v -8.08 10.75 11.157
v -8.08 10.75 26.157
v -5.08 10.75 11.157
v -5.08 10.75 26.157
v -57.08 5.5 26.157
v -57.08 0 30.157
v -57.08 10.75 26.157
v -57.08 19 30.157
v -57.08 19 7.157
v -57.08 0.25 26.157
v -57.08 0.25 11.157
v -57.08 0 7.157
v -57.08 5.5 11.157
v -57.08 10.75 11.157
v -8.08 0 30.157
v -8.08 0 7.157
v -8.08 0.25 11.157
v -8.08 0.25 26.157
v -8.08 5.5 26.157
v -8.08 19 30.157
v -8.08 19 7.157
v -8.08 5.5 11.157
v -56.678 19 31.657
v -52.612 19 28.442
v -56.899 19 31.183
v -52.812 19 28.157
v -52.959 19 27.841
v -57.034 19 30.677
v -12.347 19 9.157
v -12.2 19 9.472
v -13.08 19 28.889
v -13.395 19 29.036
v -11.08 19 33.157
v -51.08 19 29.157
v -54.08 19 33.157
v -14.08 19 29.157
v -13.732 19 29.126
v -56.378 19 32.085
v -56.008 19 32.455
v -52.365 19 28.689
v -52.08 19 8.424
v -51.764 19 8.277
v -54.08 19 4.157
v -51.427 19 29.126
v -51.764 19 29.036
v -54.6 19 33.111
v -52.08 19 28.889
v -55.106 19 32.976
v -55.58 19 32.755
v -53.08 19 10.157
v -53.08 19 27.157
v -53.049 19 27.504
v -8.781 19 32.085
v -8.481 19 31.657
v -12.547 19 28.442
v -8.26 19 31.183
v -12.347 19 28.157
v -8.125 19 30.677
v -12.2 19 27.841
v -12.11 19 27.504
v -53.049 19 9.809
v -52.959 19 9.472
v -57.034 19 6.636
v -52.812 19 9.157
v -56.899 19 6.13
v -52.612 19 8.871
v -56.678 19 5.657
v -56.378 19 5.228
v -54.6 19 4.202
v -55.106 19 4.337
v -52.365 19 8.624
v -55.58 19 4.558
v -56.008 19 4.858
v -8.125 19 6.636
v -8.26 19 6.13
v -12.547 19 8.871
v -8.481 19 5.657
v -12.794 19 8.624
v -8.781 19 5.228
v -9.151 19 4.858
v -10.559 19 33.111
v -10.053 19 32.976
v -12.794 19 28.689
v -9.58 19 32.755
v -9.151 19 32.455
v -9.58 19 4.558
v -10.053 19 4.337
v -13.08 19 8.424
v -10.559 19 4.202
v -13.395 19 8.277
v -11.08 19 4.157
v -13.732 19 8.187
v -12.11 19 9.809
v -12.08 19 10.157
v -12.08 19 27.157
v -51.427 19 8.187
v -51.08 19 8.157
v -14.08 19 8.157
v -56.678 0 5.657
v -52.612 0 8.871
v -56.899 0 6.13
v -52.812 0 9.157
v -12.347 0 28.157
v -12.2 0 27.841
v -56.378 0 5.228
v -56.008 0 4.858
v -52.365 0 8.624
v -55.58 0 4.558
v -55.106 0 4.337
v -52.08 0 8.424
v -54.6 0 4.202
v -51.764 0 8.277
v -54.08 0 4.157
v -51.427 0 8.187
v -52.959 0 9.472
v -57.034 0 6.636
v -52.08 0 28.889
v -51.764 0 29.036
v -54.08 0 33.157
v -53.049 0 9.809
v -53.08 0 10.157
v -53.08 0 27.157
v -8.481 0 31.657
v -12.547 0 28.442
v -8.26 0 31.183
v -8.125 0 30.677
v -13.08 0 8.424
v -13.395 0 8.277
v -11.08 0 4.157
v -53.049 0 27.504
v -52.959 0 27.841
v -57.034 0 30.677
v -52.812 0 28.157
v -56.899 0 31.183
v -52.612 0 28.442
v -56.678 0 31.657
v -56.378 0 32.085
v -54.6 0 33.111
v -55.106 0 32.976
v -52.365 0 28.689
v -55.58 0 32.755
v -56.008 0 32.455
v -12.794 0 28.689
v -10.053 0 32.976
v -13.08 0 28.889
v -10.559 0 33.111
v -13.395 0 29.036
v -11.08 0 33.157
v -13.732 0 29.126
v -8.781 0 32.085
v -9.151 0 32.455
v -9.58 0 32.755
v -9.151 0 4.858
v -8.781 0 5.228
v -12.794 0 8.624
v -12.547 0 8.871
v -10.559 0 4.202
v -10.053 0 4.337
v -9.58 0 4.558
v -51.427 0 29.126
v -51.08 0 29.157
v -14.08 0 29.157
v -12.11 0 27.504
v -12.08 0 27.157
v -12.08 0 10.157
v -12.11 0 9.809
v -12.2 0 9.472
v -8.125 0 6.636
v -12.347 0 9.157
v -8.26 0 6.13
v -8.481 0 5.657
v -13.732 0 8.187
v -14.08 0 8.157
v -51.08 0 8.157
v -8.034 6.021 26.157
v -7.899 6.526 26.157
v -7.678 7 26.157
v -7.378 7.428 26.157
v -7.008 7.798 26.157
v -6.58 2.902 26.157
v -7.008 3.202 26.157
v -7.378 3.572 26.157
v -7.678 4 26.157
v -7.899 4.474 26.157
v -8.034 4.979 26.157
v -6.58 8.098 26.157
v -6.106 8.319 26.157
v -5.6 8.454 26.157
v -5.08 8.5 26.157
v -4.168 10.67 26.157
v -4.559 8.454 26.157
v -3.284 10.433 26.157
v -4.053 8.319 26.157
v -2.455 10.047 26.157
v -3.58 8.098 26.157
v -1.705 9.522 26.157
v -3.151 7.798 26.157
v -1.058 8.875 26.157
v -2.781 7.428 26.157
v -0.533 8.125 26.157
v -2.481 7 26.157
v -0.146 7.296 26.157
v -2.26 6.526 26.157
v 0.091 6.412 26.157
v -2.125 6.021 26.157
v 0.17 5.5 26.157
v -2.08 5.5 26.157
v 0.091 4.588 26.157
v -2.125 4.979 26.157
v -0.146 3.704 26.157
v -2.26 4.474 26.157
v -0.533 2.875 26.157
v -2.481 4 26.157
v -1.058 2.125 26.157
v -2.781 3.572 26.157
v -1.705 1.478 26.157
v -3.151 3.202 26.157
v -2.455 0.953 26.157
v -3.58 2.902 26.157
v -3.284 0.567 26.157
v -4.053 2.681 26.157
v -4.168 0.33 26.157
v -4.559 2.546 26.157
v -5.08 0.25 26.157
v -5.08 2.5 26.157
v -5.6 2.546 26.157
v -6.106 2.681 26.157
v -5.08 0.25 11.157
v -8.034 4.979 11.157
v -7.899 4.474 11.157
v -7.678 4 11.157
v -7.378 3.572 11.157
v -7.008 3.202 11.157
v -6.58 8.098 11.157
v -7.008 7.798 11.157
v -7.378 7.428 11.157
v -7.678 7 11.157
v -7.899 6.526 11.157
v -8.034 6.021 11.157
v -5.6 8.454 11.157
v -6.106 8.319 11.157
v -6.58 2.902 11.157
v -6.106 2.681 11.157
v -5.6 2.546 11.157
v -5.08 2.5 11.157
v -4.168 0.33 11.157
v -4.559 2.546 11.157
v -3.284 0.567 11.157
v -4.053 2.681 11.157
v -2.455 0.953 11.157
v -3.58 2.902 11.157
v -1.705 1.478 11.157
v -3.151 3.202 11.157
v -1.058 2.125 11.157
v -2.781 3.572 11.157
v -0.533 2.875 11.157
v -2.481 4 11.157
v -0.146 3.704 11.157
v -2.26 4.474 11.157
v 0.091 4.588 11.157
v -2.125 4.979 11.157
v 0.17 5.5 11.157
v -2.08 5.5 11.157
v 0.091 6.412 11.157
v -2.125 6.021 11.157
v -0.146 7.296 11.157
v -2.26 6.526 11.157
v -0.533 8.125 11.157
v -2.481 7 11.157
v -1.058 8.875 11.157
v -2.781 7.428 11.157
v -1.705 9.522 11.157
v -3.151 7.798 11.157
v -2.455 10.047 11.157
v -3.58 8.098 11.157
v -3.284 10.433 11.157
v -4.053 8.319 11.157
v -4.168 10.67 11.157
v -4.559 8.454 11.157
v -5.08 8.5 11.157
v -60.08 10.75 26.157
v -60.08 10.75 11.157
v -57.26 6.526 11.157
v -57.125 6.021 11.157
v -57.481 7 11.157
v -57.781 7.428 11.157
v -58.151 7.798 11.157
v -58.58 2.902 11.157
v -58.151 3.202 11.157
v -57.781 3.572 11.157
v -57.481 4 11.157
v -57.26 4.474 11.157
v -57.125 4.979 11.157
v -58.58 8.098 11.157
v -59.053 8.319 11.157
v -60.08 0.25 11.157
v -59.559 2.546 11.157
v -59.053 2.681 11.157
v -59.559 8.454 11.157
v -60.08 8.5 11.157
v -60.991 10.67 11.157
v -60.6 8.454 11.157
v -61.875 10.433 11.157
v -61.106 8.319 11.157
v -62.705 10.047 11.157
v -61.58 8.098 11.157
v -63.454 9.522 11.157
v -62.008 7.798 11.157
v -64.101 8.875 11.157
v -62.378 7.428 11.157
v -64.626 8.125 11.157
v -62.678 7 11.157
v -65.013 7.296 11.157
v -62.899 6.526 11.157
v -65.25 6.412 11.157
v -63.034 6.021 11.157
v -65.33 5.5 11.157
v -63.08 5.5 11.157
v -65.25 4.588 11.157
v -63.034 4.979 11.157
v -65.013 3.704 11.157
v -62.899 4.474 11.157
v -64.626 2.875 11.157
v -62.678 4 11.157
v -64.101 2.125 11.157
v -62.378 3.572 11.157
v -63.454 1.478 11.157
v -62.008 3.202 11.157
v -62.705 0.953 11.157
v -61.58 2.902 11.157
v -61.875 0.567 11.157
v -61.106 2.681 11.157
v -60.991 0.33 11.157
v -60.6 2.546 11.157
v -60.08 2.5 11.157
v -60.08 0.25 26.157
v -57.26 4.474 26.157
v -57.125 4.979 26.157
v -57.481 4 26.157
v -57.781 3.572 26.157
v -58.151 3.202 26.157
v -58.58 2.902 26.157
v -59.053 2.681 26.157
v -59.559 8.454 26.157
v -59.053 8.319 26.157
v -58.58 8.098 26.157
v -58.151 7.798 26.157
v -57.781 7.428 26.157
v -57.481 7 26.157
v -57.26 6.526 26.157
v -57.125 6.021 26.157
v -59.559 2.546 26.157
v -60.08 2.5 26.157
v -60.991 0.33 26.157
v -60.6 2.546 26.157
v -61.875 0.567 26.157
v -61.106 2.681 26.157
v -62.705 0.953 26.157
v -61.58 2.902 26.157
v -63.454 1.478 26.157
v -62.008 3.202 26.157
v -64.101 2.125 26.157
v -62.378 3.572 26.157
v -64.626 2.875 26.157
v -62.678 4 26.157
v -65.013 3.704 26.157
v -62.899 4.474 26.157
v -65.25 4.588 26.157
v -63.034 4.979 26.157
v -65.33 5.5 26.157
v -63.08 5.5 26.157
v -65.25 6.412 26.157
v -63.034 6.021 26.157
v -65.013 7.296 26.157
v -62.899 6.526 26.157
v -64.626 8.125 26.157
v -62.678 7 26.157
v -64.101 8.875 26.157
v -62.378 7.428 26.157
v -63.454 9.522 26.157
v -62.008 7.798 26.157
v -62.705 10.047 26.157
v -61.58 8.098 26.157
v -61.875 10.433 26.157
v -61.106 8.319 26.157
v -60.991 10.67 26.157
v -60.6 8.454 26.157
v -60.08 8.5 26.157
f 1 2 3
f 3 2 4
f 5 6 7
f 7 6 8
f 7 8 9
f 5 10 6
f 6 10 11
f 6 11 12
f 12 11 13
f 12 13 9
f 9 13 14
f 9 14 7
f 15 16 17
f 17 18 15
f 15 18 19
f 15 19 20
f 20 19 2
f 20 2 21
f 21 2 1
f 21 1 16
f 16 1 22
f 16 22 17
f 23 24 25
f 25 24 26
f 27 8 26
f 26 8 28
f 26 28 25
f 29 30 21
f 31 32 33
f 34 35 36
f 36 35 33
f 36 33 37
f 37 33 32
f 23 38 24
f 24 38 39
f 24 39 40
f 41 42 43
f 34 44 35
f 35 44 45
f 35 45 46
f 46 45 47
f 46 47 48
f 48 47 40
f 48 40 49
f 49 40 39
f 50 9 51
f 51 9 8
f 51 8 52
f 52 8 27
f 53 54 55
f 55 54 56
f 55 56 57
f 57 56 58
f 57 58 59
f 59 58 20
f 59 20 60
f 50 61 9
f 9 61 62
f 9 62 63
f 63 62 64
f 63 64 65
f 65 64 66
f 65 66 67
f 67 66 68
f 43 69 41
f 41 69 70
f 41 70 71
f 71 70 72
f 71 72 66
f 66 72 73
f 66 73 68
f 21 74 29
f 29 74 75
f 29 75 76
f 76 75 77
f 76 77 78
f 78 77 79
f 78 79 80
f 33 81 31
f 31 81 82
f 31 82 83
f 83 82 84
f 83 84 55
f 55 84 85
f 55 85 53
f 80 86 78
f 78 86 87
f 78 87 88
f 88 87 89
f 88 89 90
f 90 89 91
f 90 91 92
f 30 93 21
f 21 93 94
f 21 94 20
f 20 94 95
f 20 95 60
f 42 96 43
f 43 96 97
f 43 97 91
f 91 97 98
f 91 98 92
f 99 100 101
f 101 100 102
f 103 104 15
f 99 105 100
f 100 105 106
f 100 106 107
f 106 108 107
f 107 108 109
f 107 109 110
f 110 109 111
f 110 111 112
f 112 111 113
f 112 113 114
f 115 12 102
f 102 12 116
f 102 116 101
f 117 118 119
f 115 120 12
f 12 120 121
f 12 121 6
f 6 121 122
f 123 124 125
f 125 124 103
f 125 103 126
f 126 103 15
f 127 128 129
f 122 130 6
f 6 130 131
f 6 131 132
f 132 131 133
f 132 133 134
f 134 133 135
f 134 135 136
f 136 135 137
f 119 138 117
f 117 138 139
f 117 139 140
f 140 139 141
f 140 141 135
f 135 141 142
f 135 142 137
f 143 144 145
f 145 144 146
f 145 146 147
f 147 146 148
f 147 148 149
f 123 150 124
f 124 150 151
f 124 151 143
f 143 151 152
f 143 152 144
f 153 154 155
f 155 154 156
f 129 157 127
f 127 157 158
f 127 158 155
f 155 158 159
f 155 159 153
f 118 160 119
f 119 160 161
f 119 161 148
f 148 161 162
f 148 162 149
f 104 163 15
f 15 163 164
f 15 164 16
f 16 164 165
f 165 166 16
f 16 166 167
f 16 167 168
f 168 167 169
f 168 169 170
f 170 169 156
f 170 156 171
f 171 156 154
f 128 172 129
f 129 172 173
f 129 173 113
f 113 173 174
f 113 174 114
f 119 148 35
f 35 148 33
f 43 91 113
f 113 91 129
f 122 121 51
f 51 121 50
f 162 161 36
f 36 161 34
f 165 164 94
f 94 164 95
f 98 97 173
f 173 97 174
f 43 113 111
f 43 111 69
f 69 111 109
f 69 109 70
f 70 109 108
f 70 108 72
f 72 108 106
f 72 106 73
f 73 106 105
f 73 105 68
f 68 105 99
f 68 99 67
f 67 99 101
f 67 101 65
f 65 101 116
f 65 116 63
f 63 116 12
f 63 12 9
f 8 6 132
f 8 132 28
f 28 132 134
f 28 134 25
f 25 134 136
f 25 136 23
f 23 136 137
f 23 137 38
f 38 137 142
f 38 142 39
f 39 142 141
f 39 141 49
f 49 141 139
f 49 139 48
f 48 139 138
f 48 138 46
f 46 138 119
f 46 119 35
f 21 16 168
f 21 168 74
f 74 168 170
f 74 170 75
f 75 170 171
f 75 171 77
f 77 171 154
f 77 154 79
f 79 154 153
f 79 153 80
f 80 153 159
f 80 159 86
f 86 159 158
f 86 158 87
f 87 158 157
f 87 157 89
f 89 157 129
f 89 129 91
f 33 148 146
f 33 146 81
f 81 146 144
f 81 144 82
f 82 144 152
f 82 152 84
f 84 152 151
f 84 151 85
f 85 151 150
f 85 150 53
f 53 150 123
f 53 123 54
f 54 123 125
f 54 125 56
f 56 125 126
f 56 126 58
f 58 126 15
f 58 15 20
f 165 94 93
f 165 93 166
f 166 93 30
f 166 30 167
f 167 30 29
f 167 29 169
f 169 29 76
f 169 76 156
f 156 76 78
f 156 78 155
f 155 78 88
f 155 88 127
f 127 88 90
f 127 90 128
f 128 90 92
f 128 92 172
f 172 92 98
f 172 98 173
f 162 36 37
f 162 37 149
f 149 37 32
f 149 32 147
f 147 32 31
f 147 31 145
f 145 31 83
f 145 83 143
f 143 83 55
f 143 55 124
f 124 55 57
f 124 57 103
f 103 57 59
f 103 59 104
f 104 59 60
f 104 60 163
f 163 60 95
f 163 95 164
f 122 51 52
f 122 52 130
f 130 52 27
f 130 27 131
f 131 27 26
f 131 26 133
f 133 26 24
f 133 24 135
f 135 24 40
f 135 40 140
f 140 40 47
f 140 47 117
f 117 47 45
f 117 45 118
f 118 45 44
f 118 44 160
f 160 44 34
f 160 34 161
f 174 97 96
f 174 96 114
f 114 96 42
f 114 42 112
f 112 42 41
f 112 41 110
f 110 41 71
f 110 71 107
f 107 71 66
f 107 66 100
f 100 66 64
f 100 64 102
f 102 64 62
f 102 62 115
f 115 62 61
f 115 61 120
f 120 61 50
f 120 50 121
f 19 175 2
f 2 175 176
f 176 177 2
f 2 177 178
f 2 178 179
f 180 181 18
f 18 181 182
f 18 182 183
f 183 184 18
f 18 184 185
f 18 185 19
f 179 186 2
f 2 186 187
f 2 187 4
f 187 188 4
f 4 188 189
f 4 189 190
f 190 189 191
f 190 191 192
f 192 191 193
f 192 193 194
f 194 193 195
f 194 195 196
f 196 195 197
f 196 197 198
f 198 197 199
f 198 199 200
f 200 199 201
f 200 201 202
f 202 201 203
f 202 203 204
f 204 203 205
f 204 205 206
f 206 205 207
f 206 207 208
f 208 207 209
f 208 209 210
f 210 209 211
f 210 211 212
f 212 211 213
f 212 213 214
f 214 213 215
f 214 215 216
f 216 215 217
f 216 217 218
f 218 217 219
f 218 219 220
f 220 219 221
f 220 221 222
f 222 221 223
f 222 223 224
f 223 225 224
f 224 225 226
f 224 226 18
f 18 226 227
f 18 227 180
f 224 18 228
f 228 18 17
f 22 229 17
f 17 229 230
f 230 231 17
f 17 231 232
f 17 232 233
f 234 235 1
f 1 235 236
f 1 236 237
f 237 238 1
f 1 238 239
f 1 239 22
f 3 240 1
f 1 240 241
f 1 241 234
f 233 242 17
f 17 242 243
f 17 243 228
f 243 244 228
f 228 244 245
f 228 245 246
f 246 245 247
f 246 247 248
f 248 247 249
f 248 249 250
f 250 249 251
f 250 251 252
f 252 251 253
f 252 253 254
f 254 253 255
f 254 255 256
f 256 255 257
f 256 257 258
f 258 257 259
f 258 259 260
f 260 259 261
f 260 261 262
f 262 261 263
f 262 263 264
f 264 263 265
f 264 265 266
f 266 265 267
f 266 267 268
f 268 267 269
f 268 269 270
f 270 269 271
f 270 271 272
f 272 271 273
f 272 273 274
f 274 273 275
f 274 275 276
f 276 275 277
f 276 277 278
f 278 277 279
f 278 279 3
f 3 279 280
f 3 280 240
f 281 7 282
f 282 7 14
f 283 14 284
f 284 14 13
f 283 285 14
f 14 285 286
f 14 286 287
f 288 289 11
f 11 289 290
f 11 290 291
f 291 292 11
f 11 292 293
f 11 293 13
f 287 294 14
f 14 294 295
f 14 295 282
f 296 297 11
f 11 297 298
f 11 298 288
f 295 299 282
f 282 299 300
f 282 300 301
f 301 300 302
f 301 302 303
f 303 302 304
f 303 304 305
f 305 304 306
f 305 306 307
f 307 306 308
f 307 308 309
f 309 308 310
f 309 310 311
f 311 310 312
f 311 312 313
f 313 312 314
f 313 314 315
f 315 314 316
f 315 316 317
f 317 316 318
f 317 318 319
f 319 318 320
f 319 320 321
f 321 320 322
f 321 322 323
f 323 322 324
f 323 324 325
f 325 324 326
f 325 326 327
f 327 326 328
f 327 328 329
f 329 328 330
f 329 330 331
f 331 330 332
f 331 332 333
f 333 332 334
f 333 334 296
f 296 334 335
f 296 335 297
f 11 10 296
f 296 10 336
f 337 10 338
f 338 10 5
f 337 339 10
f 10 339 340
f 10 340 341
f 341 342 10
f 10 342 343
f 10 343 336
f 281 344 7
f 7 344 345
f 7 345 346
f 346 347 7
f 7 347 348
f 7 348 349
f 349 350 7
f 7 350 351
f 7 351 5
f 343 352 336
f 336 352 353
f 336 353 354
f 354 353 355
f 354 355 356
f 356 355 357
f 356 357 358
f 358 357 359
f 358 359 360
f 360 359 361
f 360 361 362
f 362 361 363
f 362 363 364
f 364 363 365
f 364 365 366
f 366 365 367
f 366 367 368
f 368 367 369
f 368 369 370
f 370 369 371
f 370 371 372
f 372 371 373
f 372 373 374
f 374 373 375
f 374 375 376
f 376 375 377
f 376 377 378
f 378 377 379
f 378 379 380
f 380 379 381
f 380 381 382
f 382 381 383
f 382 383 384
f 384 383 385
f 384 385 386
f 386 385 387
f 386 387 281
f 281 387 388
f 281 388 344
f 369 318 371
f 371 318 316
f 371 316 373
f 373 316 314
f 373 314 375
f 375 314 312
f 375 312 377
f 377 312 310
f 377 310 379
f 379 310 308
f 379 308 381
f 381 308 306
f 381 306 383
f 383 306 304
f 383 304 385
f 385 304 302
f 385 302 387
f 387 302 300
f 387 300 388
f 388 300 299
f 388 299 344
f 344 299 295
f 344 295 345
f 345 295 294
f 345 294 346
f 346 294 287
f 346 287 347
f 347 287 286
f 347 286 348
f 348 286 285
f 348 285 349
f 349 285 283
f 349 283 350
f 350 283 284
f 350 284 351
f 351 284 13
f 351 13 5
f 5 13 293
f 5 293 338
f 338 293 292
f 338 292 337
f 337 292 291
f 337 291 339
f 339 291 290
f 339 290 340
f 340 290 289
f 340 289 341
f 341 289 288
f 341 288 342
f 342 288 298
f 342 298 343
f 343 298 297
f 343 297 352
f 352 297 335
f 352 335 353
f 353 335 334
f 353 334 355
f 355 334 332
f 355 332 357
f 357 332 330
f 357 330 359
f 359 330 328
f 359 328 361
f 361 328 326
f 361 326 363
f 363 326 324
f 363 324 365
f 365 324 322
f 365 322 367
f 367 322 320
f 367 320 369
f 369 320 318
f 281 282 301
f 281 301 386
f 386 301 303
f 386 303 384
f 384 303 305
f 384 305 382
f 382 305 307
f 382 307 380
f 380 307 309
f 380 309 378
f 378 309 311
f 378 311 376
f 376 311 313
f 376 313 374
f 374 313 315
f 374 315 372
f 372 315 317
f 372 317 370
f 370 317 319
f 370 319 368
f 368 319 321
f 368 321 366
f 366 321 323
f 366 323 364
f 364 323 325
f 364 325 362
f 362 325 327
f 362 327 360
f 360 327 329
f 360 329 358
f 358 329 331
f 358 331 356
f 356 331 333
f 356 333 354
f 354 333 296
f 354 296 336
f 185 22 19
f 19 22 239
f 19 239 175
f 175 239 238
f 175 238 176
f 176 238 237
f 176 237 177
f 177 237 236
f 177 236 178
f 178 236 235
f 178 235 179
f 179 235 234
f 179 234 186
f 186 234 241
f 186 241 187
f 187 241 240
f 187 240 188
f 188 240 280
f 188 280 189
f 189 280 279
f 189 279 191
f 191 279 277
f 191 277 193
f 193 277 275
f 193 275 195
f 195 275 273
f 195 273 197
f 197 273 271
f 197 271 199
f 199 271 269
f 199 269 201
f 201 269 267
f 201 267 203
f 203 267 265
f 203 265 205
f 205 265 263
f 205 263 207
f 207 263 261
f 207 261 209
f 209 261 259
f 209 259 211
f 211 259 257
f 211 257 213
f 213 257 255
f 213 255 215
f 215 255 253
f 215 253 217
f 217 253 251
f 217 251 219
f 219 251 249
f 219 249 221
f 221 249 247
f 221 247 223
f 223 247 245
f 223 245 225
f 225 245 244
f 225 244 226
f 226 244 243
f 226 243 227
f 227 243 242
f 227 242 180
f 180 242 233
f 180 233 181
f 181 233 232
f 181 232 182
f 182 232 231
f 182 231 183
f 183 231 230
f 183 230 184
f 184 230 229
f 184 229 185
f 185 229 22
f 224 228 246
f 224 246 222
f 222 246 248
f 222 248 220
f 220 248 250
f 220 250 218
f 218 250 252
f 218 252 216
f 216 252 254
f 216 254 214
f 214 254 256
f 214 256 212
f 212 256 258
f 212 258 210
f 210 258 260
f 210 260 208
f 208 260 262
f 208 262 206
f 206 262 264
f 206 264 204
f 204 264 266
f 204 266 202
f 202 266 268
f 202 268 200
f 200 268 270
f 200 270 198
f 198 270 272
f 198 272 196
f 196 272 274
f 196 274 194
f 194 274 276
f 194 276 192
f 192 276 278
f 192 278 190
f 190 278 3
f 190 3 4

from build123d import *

# Parameters (mm, degrees)
ESQUISSE1_W             = 49
ESQUISSE1_H             = 29
ESQUISSE1_W_2           = 41
ESQUISSE1_H_2           = 21
BOSS_EXTRU_1_DEPTH      = 19
CONG_1_R                = 3
CONG_2_R                = 2
ESQUISSE2_W             = 15
ESQUISSE2_H             = 10.5
BOSS_EXTRU_2_DEPTH      = 19
ESQUISSE3_W             = 15
ESQUISSE3_H             = 10.5
BOSS_EXTRU_3_DEPTH      = 19
ENL_V_MAT_EXTRU_1_REACH = 83.444
ESQUISSE5_R             = 3
ENL_V_MAT_EXTRU_2_REACH = 83.444
ENL_V_MAT_EXTRU_3_REACH = 73.505
ESQUISSE8_R             = 3
ENL_V_MAT_EXTRU_4_REACH = 73.505


with BuildPart() as part:
    # Esquisse1 → Boss.-Extru.1 (new body)
    with BuildSketch(Plane(origin=(0, 0, 0), x_dir=(1, 0, 0), z_dir=(0, 1, 0))):
        with Locations((-32.579514124, -18.656539988)):
            Rectangle(ESQUISSE1_W, ESQUISSE1_H)
        with Locations((-32.579514124, -18.656539988)):
            Rectangle(ESQUISSE1_W_2, ESQUISSE1_H_2, mode=Mode.SUBTRACT)
    extrude(amount=BOSS_EXTRU_1_DEPTH)

    # Congé1
    cong_1_edges = [part.edges().sort_by_distance(p)[0] for p in [
        (-57.079514124, 9.5, 4.156539988),
        (-8.079514124, 9.5, 4.156539988),
        (-8.079514124, 9.5, 33.156539988),
        (-57.079514124, 9.5, 33.156539988),
    ]]
    fillet(cong_1_edges, radius=CONG_1_R)

    # Congé2
    cong_2_edges = [part.edges().sort_by_distance(p)[0] for p in [
        (-53.079514124, 9.5, 8.156539988),
        (-53.079514124, 9.5, 29.156539988),
        (-12.079514124, 9.5, 29.156539988),
        (-12.079514124, 9.5, 8.156539988),
    ]]
    fillet(cong_2_edges, radius=CONG_2_R)

    # Esquisse2 → Boss.-Extru.2 (add)
    with BuildSketch(Plane(origin=(-8.079514124, 0, 0), x_dir=(0, 0, -1), z_dir=(1, 0, 0))):
        with Locations((-18.656539988, 5.5)):
            Rectangle(ESQUISSE2_W, ESQUISSE2_H)
    extrude(amount=BOSS_EXTRU_2_DEPTH)

    # Esquisse3 → Boss.-Extru.3 (add)
    with BuildSketch(Plane.ZY.offset(57.079514124)):
        with Locations((18.656539988, 5.5)):
            Rectangle(ESQUISSE3_W, ESQUISSE3_H)
    extrude(amount=BOSS_EXTRU_3_DEPTH)

    # Esquisse5 → Enlèv. mat.-Extru.1 (cut, up to next)
    with BuildSketch(Plane(origin=(0, 0, 11.156539988), x_dir=(-1, 0, 0), z_dir=(0, 0, -1)), mode=Mode.PRIVATE) as enl_v_mat_extru_1_sk1:
        with Locations(Location((60.079514124, 5.5, 0), (0, 0, 180))):
            Circle(ESQUISSE5_R)
    enl_v_mat_extru_1_tool1 = extrude(enl_v_mat_extru_1_sk1.sketch, amount=-ENL_V_MAT_EXTRU_1_REACH, mode=Mode.PRIVATE) & part.part
    add(enl_v_mat_extru_1_tool1.solids().sort_by_distance((-60.079514, 5.5, 11.15654))[0], mode=Mode.SUBTRACT)

    # Esquisse7 → Enlèv. mat.-Extru.2 (cut, up to next)
    with BuildSketch(Plane(origin=(0, 0, 11.156539988), x_dir=(-1, 0, 0), z_dir=(0, 0, -1)), mode=Mode.PRIVATE) as enl_v_mat_extru_2_sk1:
        with BuildLine():
            Line((60.079514124, 0.25), (76.079514124, 0.25))
            Line((76.079514124, 0.25), (76.079514124, 10.75))
            Line((76.079514124, 10.75), (60.079514124, 10.75))
            ThreePointArc((60.079514124, 10.75), (65.329514124, 5.5), (60.079514124, 0.25))
        make_face()
    enl_v_mat_extru_2_tool1 = extrude(enl_v_mat_extru_2_sk1.sketch, amount=-ENL_V_MAT_EXTRU_2_REACH, mode=Mode.PRIVATE) & part.part
    add(enl_v_mat_extru_2_tool1.solids().sort_by_distance((-70.083379, 5.5, 11.15654))[0], mode=Mode.SUBTRACT)

    # Esquisse8 → Enlèv. mat.-Extru.3 (cut, up to next)
    with BuildSketch(Plane(origin=(0, 0, 11.156539988), x_dir=(-1, 0, 0), z_dir=(0, 0, -1)), mode=Mode.PRIVATE) as enl_v_mat_extru_3_sk1:
        with Locations((5.079514124, 5.5)):
            Circle(ESQUISSE8_R)
    enl_v_mat_extru_3_tool1 = extrude(enl_v_mat_extru_3_sk1.sketch, amount=-ENL_V_MAT_EXTRU_3_REACH, mode=Mode.PRIVATE) & part.part
    add(enl_v_mat_extru_3_tool1.solids().sort_by_distance((-5.079514, 5.5, 11.15654))[0], mode=Mode.SUBTRACT)

    # Esquisse9 → Enlèv. mat.-Extru.4 (cut, up to next)
    with BuildSketch(Plane(origin=(0, 0, 11.156539988), x_dir=(-1, 0, 0), z_dir=(0, 0, -1)), mode=Mode.PRIVATE) as enl_v_mat_extru_4_sk1:
        with BuildLine():
            Line((5.079514124, 0.25), (-10.920485876, 0.25))
            Line((-10.920485876, 0.25), (-10.920485876, 10.75))
            Line((-10.920485876, 10.75), (5.079514124, 10.75))
            ThreePointArc((5.079514124, 10.75), (-0.170485876, 5.5), (5.079514124, 0.25))
        make_face()
    enl_v_mat_extru_4_tool1 = extrude(enl_v_mat_extru_4_sk1.sketch, amount=-ENL_V_MAT_EXTRU_4_REACH, mode=Mode.PRIVATE) & part.part
    add(enl_v_mat_extru_4_tool1.solids().sort_by_distance((4.924351, 5.5, 11.15654))[0], mode=Mode.SUBTRACT)


solid = part.part
